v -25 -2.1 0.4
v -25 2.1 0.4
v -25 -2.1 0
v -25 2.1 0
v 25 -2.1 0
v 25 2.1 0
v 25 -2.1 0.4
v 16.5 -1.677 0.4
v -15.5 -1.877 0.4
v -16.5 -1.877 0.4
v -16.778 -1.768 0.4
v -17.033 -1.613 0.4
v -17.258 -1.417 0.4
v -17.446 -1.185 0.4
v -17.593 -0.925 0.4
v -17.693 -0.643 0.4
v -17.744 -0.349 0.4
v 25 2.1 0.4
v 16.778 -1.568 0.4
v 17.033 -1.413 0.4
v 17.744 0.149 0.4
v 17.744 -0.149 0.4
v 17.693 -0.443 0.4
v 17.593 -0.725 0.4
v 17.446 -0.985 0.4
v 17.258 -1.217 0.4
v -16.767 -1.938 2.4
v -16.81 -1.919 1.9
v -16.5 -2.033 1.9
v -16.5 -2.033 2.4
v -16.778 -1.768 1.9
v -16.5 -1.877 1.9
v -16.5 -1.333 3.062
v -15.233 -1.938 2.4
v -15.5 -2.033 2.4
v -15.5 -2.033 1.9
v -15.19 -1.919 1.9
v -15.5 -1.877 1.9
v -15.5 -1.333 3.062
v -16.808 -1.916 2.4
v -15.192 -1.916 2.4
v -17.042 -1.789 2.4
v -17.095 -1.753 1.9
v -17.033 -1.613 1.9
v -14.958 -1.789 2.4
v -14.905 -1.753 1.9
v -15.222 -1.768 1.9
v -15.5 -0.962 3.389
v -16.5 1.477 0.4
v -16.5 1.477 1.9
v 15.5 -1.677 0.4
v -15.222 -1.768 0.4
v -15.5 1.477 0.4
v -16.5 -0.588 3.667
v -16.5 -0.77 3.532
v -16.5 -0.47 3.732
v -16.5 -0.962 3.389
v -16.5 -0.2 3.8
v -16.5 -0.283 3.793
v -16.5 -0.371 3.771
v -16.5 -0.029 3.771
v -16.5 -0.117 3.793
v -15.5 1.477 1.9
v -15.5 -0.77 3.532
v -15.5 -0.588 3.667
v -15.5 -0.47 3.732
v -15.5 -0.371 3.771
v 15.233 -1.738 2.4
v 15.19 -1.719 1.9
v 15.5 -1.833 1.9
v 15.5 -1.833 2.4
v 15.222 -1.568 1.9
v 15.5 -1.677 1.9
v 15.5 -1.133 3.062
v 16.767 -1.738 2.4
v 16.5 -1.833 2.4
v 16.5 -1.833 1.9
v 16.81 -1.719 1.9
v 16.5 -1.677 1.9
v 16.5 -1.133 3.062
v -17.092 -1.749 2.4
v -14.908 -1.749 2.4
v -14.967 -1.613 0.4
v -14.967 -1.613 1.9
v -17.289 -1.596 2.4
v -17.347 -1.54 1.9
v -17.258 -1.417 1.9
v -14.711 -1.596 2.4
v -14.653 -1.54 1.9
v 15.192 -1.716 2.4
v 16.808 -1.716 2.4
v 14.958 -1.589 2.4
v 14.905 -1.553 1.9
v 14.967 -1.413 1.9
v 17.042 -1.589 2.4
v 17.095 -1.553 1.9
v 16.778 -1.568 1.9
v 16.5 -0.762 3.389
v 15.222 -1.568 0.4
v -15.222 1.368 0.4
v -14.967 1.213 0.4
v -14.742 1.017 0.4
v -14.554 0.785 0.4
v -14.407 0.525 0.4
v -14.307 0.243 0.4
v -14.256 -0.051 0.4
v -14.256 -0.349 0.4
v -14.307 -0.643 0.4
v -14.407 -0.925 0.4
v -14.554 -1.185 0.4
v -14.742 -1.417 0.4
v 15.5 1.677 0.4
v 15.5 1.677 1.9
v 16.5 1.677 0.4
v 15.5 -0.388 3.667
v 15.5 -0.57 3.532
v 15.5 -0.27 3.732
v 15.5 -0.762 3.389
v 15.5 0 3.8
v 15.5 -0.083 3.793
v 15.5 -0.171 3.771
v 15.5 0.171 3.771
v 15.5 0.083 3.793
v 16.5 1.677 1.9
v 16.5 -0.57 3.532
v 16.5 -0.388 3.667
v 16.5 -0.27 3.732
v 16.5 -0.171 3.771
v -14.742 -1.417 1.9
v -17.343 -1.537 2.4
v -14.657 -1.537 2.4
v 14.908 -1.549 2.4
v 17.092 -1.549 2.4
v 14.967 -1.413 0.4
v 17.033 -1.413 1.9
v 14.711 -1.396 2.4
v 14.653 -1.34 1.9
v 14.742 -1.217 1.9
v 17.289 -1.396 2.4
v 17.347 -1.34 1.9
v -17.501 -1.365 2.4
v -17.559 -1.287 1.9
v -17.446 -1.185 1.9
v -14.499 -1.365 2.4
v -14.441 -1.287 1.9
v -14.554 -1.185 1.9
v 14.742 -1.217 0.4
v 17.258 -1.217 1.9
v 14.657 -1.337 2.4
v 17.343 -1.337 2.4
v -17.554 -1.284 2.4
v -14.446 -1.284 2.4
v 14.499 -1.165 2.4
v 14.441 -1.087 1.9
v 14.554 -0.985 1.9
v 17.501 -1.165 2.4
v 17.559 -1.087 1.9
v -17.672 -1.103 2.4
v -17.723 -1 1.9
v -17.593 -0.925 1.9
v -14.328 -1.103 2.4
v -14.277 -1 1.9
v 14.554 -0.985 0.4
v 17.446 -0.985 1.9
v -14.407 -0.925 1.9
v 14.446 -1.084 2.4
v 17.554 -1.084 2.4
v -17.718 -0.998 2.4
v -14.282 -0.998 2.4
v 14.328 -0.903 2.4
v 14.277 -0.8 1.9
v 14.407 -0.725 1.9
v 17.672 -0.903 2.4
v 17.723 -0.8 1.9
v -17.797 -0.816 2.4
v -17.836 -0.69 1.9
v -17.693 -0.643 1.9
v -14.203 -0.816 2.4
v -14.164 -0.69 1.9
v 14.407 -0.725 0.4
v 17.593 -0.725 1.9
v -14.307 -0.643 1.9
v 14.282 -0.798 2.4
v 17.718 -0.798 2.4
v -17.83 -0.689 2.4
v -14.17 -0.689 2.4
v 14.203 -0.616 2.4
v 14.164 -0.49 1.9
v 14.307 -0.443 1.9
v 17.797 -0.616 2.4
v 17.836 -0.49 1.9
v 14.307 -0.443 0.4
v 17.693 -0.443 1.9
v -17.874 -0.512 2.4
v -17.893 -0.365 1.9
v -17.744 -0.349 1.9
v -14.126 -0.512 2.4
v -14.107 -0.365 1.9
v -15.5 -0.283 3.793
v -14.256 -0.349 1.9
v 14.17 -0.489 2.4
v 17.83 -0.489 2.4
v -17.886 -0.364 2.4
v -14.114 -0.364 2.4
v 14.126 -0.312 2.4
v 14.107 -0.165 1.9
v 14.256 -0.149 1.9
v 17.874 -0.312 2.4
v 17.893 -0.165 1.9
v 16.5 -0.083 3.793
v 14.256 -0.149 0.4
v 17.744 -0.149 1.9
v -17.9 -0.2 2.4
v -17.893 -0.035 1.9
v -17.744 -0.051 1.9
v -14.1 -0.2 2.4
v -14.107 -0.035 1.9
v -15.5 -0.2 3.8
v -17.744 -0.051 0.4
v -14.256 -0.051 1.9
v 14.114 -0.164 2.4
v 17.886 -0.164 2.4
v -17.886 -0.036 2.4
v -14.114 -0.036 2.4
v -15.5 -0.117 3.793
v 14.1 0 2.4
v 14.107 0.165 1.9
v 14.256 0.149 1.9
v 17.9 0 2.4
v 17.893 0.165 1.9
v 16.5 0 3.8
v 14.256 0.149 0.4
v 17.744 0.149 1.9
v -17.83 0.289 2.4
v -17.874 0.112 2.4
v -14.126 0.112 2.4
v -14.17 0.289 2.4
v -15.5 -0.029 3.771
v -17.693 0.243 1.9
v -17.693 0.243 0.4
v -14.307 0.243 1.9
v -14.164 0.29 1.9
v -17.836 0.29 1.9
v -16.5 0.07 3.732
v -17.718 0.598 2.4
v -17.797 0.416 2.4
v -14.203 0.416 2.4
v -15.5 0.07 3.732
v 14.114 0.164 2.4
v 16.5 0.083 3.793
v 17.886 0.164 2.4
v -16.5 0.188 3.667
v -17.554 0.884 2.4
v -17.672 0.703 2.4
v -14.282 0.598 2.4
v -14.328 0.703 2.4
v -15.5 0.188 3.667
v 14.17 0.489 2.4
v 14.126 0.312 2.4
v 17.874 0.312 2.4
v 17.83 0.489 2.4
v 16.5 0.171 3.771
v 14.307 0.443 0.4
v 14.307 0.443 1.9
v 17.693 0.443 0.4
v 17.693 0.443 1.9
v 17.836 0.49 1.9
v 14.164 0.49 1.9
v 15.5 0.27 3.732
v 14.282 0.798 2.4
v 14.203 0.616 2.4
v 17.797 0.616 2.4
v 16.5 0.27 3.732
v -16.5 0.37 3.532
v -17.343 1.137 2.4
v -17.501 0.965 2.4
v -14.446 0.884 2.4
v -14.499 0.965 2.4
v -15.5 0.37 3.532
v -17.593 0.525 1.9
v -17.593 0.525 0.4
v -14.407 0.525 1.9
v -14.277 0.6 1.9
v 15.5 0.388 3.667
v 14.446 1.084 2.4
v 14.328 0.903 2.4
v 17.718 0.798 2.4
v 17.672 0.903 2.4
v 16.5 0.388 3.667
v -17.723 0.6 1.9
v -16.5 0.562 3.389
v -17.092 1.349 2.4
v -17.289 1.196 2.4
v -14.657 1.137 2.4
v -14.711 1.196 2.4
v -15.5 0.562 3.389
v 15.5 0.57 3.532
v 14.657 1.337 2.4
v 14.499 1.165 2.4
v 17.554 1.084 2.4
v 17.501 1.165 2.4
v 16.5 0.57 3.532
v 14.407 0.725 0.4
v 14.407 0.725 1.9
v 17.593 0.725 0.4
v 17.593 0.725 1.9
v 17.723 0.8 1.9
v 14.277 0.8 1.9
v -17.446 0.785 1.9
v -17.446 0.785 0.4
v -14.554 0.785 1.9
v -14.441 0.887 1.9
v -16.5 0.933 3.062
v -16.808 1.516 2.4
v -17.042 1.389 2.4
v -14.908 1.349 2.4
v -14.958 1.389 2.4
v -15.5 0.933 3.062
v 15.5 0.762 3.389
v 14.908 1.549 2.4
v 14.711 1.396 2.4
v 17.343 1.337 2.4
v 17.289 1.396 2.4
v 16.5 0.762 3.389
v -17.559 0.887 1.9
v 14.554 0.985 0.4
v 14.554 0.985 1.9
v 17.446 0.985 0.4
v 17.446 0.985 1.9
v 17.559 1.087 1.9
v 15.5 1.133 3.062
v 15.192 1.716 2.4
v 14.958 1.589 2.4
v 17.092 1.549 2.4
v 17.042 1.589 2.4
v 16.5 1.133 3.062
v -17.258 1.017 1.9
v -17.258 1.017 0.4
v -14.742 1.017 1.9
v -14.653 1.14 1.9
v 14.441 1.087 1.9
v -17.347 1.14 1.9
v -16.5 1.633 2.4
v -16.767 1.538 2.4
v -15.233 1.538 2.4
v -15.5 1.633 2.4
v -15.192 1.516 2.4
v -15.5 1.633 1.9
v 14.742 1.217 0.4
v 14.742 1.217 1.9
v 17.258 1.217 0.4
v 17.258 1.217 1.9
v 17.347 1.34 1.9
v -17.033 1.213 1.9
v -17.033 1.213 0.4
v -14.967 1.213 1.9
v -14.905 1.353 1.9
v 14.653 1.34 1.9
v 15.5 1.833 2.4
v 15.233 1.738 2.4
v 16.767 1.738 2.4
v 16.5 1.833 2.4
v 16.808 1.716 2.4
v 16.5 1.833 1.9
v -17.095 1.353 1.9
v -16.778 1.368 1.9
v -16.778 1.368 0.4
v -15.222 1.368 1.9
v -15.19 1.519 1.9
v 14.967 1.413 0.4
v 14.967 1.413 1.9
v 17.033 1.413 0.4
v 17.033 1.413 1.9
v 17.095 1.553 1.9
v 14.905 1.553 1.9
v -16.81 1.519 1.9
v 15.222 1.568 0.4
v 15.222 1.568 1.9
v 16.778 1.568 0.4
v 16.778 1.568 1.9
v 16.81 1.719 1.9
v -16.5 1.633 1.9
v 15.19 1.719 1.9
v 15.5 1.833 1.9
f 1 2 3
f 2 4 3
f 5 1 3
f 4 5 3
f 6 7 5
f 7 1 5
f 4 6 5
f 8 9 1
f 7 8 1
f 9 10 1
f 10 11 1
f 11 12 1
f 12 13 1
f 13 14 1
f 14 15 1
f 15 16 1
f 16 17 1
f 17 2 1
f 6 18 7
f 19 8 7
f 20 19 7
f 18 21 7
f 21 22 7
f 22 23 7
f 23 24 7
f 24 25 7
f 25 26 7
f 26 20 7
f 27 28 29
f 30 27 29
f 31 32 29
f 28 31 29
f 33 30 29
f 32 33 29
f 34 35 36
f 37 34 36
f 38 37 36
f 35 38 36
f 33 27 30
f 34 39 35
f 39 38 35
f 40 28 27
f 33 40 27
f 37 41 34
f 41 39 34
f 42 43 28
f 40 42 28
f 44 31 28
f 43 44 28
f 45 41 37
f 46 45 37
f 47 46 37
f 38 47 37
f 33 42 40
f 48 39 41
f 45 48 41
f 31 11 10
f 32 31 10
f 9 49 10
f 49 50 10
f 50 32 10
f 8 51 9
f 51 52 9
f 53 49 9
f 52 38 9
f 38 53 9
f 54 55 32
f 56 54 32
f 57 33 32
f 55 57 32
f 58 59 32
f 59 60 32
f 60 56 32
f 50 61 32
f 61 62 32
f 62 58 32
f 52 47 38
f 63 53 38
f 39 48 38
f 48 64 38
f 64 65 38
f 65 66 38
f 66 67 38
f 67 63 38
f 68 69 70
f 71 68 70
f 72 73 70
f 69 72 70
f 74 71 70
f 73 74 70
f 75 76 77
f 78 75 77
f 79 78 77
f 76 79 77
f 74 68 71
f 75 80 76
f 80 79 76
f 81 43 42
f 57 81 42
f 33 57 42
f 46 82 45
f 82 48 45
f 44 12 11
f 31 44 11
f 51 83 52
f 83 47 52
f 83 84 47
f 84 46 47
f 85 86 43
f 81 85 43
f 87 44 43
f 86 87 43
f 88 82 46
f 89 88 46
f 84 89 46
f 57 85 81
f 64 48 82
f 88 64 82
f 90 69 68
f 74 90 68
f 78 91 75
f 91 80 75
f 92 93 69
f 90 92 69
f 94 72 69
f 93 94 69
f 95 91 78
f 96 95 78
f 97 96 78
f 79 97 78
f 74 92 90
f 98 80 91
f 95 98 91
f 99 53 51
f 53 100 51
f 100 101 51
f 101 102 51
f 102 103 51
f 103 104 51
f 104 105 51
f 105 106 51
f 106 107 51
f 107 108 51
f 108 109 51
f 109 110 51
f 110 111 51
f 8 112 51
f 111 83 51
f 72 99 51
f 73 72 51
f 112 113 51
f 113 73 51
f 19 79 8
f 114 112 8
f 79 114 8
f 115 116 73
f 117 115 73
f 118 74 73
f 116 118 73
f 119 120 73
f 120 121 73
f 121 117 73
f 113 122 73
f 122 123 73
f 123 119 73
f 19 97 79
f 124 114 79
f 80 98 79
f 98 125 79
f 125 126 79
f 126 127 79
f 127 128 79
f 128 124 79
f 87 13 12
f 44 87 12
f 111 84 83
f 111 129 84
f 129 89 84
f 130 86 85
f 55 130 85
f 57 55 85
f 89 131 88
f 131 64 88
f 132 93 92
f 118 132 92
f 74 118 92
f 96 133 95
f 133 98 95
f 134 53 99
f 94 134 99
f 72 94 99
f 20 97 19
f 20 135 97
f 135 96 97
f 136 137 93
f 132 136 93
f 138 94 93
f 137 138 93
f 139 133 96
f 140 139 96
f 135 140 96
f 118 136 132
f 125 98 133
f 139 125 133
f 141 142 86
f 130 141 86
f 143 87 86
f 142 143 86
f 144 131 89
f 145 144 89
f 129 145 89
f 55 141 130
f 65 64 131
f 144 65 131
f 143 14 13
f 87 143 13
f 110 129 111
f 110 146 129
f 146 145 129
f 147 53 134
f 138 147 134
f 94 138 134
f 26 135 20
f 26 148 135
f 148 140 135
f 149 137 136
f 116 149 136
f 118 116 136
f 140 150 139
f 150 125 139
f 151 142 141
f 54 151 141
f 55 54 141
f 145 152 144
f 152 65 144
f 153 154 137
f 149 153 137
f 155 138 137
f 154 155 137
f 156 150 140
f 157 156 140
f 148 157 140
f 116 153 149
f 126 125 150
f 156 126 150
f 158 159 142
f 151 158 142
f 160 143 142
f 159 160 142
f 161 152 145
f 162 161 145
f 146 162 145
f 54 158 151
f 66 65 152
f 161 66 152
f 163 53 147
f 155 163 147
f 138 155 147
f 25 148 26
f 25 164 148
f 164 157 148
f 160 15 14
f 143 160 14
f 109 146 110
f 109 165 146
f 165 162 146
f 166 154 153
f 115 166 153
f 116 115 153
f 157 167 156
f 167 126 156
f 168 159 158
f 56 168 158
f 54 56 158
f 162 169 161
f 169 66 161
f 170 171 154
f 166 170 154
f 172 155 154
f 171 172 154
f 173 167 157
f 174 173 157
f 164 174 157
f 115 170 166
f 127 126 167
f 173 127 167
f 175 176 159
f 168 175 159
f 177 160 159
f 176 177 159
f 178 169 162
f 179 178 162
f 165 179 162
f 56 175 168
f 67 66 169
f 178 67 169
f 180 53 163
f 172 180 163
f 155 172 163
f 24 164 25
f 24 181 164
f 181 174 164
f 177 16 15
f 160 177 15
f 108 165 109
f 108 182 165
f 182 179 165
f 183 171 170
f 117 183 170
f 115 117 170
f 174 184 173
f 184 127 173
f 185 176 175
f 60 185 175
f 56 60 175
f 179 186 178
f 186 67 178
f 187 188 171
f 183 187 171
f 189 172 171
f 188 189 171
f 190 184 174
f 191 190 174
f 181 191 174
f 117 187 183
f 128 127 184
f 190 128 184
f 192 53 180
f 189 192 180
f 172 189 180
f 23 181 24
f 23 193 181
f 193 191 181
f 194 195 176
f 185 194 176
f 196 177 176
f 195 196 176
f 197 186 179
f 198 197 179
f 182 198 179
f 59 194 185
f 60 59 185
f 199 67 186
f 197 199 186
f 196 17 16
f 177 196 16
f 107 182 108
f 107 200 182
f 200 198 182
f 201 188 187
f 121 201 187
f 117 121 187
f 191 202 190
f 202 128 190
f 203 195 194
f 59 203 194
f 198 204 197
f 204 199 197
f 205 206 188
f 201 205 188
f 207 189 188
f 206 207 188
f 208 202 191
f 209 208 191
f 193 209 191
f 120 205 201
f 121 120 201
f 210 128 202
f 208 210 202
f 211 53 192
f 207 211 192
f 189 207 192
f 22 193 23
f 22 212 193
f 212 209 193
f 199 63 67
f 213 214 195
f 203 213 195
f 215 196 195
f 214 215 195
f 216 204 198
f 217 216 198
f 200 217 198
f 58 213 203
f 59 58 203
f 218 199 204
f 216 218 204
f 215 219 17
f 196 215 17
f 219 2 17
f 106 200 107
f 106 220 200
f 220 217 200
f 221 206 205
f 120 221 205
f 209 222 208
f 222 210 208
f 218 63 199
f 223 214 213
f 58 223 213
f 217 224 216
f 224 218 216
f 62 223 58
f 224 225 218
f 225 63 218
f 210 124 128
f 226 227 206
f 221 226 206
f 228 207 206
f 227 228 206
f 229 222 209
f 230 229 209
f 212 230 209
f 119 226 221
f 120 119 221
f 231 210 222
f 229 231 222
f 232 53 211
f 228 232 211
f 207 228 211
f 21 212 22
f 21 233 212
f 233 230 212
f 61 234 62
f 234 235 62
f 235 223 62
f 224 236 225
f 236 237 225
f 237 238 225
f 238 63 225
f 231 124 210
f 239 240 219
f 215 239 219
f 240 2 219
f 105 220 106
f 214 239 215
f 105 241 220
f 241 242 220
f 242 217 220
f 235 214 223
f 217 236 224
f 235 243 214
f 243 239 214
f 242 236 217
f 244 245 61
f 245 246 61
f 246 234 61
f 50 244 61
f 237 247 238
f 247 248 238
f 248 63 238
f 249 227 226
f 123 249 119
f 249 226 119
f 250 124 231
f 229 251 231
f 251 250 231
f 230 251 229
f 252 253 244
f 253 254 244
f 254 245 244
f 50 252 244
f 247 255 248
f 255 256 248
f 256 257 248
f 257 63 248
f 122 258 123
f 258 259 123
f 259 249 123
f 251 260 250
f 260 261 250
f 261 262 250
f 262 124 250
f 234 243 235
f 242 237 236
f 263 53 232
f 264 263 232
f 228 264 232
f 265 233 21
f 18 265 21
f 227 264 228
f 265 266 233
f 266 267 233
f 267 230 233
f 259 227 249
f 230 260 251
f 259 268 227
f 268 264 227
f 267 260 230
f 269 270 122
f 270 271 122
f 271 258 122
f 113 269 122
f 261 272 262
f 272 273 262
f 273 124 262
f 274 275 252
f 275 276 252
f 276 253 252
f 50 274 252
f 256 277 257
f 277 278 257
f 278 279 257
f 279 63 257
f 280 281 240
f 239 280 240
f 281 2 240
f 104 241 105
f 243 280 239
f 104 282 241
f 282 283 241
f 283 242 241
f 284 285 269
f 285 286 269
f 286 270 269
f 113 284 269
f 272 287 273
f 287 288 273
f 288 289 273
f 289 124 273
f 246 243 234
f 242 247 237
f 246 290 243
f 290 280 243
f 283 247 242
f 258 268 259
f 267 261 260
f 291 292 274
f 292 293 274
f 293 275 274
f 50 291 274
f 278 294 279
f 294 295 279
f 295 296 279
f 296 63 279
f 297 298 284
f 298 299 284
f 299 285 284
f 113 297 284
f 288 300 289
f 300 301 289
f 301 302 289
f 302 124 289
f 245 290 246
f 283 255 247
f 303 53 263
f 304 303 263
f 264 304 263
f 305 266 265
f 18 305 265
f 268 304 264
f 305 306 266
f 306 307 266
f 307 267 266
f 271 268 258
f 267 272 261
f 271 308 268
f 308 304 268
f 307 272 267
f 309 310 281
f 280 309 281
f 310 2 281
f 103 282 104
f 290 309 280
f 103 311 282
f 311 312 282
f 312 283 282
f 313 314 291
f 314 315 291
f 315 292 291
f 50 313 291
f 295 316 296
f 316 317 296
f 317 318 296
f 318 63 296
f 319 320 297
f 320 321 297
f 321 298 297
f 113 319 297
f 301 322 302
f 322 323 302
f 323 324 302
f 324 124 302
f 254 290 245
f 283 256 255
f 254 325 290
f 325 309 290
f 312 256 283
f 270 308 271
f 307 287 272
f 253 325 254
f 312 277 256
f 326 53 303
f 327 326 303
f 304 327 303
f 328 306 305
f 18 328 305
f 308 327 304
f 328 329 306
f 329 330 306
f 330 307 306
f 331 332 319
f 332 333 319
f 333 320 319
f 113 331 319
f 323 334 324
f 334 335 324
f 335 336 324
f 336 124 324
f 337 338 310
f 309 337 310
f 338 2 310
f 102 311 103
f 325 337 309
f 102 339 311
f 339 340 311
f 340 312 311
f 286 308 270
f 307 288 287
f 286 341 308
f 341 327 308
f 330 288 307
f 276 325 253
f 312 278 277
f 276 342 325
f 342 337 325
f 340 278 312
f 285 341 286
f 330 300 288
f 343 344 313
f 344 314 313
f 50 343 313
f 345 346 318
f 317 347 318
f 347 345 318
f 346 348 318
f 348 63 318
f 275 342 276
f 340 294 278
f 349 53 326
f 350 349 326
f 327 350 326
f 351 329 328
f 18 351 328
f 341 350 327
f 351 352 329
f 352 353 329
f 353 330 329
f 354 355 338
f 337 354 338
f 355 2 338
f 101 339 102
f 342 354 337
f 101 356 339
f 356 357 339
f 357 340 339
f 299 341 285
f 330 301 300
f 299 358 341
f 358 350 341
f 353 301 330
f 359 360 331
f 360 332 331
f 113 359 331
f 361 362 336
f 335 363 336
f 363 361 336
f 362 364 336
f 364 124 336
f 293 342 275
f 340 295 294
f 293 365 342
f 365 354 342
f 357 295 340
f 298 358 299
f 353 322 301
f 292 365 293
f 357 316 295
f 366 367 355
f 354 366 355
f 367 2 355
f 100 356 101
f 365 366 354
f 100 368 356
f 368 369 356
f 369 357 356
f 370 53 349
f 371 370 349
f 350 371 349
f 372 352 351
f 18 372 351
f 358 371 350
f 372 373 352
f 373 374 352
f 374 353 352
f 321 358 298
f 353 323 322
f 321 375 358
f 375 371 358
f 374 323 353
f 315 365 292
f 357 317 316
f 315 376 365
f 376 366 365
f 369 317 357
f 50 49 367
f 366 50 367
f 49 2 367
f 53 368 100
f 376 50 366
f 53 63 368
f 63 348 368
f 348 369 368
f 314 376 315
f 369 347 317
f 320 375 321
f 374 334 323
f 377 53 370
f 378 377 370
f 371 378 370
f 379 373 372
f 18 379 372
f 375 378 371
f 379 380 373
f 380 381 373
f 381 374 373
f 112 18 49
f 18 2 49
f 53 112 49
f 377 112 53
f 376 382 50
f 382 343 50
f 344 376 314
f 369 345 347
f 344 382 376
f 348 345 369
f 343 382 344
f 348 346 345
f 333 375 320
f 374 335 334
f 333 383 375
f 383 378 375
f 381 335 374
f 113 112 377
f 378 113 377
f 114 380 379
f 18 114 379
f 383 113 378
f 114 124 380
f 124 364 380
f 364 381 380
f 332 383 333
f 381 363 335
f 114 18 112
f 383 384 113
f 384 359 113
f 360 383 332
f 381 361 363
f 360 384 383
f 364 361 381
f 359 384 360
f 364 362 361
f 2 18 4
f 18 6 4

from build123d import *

# Parameters (mm, degrees)
SKICA2_W                 = 50
SKICA2_H                 = 4.2
P_IDAT_VYSUNUT_M2_DEPTH  = 0.4
SKICA3_R                 = 1.75
P_IDAT_VYSUNUT_M3_DEPTH  = 1.5
SKICA5_R                 = 1.9
P_IDAT_VYSUNUT_M5_DEPTH  = 2
ZKOSEN_2_SIZE            = 1.5
SKICA7_W                 = 1
SKICA7_H                 = 5
ODEBRAT_VYSUNUT_M1_DEPTH = 3.5


with BuildPart() as part:
    # Skica2 → Přidat vysunutím2 (new body)
    with BuildSketch(Plane.XY):
        Rectangle(SKICA2_W, SKICA2_H)
    extrude(amount=P_IDAT_VYSUNUT_M2_DEPTH)

    # Skica3 → Přidat vysunutím3 (add)
    with BuildSketch(Plane.XY.offset(0.4)):
        with Locations((-16, -0.2)):
            Circle(SKICA3_R)
        with Locations((16, 0)):
            Circle(SKICA3_R)
    extrude(amount=P_IDAT_VYSUNUT_M3_DEPTH)

    # Skica5 → Přidat vysunutím5 (add)
    with BuildSketch(Plane.XY.offset(1.9)):
        with Locations((-16, -0.2)):
            Circle(SKICA5_R)
        with Locations((16, 0)):
            Circle(SKICA5_R)
    extrude(amount=P_IDAT_VYSUNUT_M5_DEPTH)

    # Zkosení2
    zkosen_2_edges = [part.edges().sort_by_distance(p)[0] for p in [
        (-17.9, -0.2, 3.9),
        (14.1, 0, 3.9),
    ]]
    chamfer(zkosen_2_edges, length=ZKOSEN_2_SIZE)

    # Skica7 → Odebrat vysunutím1 (cut)
    with BuildSketch(Plane.XY.offset(3.9)):
        with Locations((-16, -0.2)):
            Rectangle(SKICA7_W, SKICA7_H)
        with Locations((16, 0)):
            Rectangle(SKICA7_W, SKICA7_H)
    extrude(amount=-ODEBRAT_VYSUNUT_M1_DEPTH, mode=Mode.SUBTRACT)


solid = part.part
